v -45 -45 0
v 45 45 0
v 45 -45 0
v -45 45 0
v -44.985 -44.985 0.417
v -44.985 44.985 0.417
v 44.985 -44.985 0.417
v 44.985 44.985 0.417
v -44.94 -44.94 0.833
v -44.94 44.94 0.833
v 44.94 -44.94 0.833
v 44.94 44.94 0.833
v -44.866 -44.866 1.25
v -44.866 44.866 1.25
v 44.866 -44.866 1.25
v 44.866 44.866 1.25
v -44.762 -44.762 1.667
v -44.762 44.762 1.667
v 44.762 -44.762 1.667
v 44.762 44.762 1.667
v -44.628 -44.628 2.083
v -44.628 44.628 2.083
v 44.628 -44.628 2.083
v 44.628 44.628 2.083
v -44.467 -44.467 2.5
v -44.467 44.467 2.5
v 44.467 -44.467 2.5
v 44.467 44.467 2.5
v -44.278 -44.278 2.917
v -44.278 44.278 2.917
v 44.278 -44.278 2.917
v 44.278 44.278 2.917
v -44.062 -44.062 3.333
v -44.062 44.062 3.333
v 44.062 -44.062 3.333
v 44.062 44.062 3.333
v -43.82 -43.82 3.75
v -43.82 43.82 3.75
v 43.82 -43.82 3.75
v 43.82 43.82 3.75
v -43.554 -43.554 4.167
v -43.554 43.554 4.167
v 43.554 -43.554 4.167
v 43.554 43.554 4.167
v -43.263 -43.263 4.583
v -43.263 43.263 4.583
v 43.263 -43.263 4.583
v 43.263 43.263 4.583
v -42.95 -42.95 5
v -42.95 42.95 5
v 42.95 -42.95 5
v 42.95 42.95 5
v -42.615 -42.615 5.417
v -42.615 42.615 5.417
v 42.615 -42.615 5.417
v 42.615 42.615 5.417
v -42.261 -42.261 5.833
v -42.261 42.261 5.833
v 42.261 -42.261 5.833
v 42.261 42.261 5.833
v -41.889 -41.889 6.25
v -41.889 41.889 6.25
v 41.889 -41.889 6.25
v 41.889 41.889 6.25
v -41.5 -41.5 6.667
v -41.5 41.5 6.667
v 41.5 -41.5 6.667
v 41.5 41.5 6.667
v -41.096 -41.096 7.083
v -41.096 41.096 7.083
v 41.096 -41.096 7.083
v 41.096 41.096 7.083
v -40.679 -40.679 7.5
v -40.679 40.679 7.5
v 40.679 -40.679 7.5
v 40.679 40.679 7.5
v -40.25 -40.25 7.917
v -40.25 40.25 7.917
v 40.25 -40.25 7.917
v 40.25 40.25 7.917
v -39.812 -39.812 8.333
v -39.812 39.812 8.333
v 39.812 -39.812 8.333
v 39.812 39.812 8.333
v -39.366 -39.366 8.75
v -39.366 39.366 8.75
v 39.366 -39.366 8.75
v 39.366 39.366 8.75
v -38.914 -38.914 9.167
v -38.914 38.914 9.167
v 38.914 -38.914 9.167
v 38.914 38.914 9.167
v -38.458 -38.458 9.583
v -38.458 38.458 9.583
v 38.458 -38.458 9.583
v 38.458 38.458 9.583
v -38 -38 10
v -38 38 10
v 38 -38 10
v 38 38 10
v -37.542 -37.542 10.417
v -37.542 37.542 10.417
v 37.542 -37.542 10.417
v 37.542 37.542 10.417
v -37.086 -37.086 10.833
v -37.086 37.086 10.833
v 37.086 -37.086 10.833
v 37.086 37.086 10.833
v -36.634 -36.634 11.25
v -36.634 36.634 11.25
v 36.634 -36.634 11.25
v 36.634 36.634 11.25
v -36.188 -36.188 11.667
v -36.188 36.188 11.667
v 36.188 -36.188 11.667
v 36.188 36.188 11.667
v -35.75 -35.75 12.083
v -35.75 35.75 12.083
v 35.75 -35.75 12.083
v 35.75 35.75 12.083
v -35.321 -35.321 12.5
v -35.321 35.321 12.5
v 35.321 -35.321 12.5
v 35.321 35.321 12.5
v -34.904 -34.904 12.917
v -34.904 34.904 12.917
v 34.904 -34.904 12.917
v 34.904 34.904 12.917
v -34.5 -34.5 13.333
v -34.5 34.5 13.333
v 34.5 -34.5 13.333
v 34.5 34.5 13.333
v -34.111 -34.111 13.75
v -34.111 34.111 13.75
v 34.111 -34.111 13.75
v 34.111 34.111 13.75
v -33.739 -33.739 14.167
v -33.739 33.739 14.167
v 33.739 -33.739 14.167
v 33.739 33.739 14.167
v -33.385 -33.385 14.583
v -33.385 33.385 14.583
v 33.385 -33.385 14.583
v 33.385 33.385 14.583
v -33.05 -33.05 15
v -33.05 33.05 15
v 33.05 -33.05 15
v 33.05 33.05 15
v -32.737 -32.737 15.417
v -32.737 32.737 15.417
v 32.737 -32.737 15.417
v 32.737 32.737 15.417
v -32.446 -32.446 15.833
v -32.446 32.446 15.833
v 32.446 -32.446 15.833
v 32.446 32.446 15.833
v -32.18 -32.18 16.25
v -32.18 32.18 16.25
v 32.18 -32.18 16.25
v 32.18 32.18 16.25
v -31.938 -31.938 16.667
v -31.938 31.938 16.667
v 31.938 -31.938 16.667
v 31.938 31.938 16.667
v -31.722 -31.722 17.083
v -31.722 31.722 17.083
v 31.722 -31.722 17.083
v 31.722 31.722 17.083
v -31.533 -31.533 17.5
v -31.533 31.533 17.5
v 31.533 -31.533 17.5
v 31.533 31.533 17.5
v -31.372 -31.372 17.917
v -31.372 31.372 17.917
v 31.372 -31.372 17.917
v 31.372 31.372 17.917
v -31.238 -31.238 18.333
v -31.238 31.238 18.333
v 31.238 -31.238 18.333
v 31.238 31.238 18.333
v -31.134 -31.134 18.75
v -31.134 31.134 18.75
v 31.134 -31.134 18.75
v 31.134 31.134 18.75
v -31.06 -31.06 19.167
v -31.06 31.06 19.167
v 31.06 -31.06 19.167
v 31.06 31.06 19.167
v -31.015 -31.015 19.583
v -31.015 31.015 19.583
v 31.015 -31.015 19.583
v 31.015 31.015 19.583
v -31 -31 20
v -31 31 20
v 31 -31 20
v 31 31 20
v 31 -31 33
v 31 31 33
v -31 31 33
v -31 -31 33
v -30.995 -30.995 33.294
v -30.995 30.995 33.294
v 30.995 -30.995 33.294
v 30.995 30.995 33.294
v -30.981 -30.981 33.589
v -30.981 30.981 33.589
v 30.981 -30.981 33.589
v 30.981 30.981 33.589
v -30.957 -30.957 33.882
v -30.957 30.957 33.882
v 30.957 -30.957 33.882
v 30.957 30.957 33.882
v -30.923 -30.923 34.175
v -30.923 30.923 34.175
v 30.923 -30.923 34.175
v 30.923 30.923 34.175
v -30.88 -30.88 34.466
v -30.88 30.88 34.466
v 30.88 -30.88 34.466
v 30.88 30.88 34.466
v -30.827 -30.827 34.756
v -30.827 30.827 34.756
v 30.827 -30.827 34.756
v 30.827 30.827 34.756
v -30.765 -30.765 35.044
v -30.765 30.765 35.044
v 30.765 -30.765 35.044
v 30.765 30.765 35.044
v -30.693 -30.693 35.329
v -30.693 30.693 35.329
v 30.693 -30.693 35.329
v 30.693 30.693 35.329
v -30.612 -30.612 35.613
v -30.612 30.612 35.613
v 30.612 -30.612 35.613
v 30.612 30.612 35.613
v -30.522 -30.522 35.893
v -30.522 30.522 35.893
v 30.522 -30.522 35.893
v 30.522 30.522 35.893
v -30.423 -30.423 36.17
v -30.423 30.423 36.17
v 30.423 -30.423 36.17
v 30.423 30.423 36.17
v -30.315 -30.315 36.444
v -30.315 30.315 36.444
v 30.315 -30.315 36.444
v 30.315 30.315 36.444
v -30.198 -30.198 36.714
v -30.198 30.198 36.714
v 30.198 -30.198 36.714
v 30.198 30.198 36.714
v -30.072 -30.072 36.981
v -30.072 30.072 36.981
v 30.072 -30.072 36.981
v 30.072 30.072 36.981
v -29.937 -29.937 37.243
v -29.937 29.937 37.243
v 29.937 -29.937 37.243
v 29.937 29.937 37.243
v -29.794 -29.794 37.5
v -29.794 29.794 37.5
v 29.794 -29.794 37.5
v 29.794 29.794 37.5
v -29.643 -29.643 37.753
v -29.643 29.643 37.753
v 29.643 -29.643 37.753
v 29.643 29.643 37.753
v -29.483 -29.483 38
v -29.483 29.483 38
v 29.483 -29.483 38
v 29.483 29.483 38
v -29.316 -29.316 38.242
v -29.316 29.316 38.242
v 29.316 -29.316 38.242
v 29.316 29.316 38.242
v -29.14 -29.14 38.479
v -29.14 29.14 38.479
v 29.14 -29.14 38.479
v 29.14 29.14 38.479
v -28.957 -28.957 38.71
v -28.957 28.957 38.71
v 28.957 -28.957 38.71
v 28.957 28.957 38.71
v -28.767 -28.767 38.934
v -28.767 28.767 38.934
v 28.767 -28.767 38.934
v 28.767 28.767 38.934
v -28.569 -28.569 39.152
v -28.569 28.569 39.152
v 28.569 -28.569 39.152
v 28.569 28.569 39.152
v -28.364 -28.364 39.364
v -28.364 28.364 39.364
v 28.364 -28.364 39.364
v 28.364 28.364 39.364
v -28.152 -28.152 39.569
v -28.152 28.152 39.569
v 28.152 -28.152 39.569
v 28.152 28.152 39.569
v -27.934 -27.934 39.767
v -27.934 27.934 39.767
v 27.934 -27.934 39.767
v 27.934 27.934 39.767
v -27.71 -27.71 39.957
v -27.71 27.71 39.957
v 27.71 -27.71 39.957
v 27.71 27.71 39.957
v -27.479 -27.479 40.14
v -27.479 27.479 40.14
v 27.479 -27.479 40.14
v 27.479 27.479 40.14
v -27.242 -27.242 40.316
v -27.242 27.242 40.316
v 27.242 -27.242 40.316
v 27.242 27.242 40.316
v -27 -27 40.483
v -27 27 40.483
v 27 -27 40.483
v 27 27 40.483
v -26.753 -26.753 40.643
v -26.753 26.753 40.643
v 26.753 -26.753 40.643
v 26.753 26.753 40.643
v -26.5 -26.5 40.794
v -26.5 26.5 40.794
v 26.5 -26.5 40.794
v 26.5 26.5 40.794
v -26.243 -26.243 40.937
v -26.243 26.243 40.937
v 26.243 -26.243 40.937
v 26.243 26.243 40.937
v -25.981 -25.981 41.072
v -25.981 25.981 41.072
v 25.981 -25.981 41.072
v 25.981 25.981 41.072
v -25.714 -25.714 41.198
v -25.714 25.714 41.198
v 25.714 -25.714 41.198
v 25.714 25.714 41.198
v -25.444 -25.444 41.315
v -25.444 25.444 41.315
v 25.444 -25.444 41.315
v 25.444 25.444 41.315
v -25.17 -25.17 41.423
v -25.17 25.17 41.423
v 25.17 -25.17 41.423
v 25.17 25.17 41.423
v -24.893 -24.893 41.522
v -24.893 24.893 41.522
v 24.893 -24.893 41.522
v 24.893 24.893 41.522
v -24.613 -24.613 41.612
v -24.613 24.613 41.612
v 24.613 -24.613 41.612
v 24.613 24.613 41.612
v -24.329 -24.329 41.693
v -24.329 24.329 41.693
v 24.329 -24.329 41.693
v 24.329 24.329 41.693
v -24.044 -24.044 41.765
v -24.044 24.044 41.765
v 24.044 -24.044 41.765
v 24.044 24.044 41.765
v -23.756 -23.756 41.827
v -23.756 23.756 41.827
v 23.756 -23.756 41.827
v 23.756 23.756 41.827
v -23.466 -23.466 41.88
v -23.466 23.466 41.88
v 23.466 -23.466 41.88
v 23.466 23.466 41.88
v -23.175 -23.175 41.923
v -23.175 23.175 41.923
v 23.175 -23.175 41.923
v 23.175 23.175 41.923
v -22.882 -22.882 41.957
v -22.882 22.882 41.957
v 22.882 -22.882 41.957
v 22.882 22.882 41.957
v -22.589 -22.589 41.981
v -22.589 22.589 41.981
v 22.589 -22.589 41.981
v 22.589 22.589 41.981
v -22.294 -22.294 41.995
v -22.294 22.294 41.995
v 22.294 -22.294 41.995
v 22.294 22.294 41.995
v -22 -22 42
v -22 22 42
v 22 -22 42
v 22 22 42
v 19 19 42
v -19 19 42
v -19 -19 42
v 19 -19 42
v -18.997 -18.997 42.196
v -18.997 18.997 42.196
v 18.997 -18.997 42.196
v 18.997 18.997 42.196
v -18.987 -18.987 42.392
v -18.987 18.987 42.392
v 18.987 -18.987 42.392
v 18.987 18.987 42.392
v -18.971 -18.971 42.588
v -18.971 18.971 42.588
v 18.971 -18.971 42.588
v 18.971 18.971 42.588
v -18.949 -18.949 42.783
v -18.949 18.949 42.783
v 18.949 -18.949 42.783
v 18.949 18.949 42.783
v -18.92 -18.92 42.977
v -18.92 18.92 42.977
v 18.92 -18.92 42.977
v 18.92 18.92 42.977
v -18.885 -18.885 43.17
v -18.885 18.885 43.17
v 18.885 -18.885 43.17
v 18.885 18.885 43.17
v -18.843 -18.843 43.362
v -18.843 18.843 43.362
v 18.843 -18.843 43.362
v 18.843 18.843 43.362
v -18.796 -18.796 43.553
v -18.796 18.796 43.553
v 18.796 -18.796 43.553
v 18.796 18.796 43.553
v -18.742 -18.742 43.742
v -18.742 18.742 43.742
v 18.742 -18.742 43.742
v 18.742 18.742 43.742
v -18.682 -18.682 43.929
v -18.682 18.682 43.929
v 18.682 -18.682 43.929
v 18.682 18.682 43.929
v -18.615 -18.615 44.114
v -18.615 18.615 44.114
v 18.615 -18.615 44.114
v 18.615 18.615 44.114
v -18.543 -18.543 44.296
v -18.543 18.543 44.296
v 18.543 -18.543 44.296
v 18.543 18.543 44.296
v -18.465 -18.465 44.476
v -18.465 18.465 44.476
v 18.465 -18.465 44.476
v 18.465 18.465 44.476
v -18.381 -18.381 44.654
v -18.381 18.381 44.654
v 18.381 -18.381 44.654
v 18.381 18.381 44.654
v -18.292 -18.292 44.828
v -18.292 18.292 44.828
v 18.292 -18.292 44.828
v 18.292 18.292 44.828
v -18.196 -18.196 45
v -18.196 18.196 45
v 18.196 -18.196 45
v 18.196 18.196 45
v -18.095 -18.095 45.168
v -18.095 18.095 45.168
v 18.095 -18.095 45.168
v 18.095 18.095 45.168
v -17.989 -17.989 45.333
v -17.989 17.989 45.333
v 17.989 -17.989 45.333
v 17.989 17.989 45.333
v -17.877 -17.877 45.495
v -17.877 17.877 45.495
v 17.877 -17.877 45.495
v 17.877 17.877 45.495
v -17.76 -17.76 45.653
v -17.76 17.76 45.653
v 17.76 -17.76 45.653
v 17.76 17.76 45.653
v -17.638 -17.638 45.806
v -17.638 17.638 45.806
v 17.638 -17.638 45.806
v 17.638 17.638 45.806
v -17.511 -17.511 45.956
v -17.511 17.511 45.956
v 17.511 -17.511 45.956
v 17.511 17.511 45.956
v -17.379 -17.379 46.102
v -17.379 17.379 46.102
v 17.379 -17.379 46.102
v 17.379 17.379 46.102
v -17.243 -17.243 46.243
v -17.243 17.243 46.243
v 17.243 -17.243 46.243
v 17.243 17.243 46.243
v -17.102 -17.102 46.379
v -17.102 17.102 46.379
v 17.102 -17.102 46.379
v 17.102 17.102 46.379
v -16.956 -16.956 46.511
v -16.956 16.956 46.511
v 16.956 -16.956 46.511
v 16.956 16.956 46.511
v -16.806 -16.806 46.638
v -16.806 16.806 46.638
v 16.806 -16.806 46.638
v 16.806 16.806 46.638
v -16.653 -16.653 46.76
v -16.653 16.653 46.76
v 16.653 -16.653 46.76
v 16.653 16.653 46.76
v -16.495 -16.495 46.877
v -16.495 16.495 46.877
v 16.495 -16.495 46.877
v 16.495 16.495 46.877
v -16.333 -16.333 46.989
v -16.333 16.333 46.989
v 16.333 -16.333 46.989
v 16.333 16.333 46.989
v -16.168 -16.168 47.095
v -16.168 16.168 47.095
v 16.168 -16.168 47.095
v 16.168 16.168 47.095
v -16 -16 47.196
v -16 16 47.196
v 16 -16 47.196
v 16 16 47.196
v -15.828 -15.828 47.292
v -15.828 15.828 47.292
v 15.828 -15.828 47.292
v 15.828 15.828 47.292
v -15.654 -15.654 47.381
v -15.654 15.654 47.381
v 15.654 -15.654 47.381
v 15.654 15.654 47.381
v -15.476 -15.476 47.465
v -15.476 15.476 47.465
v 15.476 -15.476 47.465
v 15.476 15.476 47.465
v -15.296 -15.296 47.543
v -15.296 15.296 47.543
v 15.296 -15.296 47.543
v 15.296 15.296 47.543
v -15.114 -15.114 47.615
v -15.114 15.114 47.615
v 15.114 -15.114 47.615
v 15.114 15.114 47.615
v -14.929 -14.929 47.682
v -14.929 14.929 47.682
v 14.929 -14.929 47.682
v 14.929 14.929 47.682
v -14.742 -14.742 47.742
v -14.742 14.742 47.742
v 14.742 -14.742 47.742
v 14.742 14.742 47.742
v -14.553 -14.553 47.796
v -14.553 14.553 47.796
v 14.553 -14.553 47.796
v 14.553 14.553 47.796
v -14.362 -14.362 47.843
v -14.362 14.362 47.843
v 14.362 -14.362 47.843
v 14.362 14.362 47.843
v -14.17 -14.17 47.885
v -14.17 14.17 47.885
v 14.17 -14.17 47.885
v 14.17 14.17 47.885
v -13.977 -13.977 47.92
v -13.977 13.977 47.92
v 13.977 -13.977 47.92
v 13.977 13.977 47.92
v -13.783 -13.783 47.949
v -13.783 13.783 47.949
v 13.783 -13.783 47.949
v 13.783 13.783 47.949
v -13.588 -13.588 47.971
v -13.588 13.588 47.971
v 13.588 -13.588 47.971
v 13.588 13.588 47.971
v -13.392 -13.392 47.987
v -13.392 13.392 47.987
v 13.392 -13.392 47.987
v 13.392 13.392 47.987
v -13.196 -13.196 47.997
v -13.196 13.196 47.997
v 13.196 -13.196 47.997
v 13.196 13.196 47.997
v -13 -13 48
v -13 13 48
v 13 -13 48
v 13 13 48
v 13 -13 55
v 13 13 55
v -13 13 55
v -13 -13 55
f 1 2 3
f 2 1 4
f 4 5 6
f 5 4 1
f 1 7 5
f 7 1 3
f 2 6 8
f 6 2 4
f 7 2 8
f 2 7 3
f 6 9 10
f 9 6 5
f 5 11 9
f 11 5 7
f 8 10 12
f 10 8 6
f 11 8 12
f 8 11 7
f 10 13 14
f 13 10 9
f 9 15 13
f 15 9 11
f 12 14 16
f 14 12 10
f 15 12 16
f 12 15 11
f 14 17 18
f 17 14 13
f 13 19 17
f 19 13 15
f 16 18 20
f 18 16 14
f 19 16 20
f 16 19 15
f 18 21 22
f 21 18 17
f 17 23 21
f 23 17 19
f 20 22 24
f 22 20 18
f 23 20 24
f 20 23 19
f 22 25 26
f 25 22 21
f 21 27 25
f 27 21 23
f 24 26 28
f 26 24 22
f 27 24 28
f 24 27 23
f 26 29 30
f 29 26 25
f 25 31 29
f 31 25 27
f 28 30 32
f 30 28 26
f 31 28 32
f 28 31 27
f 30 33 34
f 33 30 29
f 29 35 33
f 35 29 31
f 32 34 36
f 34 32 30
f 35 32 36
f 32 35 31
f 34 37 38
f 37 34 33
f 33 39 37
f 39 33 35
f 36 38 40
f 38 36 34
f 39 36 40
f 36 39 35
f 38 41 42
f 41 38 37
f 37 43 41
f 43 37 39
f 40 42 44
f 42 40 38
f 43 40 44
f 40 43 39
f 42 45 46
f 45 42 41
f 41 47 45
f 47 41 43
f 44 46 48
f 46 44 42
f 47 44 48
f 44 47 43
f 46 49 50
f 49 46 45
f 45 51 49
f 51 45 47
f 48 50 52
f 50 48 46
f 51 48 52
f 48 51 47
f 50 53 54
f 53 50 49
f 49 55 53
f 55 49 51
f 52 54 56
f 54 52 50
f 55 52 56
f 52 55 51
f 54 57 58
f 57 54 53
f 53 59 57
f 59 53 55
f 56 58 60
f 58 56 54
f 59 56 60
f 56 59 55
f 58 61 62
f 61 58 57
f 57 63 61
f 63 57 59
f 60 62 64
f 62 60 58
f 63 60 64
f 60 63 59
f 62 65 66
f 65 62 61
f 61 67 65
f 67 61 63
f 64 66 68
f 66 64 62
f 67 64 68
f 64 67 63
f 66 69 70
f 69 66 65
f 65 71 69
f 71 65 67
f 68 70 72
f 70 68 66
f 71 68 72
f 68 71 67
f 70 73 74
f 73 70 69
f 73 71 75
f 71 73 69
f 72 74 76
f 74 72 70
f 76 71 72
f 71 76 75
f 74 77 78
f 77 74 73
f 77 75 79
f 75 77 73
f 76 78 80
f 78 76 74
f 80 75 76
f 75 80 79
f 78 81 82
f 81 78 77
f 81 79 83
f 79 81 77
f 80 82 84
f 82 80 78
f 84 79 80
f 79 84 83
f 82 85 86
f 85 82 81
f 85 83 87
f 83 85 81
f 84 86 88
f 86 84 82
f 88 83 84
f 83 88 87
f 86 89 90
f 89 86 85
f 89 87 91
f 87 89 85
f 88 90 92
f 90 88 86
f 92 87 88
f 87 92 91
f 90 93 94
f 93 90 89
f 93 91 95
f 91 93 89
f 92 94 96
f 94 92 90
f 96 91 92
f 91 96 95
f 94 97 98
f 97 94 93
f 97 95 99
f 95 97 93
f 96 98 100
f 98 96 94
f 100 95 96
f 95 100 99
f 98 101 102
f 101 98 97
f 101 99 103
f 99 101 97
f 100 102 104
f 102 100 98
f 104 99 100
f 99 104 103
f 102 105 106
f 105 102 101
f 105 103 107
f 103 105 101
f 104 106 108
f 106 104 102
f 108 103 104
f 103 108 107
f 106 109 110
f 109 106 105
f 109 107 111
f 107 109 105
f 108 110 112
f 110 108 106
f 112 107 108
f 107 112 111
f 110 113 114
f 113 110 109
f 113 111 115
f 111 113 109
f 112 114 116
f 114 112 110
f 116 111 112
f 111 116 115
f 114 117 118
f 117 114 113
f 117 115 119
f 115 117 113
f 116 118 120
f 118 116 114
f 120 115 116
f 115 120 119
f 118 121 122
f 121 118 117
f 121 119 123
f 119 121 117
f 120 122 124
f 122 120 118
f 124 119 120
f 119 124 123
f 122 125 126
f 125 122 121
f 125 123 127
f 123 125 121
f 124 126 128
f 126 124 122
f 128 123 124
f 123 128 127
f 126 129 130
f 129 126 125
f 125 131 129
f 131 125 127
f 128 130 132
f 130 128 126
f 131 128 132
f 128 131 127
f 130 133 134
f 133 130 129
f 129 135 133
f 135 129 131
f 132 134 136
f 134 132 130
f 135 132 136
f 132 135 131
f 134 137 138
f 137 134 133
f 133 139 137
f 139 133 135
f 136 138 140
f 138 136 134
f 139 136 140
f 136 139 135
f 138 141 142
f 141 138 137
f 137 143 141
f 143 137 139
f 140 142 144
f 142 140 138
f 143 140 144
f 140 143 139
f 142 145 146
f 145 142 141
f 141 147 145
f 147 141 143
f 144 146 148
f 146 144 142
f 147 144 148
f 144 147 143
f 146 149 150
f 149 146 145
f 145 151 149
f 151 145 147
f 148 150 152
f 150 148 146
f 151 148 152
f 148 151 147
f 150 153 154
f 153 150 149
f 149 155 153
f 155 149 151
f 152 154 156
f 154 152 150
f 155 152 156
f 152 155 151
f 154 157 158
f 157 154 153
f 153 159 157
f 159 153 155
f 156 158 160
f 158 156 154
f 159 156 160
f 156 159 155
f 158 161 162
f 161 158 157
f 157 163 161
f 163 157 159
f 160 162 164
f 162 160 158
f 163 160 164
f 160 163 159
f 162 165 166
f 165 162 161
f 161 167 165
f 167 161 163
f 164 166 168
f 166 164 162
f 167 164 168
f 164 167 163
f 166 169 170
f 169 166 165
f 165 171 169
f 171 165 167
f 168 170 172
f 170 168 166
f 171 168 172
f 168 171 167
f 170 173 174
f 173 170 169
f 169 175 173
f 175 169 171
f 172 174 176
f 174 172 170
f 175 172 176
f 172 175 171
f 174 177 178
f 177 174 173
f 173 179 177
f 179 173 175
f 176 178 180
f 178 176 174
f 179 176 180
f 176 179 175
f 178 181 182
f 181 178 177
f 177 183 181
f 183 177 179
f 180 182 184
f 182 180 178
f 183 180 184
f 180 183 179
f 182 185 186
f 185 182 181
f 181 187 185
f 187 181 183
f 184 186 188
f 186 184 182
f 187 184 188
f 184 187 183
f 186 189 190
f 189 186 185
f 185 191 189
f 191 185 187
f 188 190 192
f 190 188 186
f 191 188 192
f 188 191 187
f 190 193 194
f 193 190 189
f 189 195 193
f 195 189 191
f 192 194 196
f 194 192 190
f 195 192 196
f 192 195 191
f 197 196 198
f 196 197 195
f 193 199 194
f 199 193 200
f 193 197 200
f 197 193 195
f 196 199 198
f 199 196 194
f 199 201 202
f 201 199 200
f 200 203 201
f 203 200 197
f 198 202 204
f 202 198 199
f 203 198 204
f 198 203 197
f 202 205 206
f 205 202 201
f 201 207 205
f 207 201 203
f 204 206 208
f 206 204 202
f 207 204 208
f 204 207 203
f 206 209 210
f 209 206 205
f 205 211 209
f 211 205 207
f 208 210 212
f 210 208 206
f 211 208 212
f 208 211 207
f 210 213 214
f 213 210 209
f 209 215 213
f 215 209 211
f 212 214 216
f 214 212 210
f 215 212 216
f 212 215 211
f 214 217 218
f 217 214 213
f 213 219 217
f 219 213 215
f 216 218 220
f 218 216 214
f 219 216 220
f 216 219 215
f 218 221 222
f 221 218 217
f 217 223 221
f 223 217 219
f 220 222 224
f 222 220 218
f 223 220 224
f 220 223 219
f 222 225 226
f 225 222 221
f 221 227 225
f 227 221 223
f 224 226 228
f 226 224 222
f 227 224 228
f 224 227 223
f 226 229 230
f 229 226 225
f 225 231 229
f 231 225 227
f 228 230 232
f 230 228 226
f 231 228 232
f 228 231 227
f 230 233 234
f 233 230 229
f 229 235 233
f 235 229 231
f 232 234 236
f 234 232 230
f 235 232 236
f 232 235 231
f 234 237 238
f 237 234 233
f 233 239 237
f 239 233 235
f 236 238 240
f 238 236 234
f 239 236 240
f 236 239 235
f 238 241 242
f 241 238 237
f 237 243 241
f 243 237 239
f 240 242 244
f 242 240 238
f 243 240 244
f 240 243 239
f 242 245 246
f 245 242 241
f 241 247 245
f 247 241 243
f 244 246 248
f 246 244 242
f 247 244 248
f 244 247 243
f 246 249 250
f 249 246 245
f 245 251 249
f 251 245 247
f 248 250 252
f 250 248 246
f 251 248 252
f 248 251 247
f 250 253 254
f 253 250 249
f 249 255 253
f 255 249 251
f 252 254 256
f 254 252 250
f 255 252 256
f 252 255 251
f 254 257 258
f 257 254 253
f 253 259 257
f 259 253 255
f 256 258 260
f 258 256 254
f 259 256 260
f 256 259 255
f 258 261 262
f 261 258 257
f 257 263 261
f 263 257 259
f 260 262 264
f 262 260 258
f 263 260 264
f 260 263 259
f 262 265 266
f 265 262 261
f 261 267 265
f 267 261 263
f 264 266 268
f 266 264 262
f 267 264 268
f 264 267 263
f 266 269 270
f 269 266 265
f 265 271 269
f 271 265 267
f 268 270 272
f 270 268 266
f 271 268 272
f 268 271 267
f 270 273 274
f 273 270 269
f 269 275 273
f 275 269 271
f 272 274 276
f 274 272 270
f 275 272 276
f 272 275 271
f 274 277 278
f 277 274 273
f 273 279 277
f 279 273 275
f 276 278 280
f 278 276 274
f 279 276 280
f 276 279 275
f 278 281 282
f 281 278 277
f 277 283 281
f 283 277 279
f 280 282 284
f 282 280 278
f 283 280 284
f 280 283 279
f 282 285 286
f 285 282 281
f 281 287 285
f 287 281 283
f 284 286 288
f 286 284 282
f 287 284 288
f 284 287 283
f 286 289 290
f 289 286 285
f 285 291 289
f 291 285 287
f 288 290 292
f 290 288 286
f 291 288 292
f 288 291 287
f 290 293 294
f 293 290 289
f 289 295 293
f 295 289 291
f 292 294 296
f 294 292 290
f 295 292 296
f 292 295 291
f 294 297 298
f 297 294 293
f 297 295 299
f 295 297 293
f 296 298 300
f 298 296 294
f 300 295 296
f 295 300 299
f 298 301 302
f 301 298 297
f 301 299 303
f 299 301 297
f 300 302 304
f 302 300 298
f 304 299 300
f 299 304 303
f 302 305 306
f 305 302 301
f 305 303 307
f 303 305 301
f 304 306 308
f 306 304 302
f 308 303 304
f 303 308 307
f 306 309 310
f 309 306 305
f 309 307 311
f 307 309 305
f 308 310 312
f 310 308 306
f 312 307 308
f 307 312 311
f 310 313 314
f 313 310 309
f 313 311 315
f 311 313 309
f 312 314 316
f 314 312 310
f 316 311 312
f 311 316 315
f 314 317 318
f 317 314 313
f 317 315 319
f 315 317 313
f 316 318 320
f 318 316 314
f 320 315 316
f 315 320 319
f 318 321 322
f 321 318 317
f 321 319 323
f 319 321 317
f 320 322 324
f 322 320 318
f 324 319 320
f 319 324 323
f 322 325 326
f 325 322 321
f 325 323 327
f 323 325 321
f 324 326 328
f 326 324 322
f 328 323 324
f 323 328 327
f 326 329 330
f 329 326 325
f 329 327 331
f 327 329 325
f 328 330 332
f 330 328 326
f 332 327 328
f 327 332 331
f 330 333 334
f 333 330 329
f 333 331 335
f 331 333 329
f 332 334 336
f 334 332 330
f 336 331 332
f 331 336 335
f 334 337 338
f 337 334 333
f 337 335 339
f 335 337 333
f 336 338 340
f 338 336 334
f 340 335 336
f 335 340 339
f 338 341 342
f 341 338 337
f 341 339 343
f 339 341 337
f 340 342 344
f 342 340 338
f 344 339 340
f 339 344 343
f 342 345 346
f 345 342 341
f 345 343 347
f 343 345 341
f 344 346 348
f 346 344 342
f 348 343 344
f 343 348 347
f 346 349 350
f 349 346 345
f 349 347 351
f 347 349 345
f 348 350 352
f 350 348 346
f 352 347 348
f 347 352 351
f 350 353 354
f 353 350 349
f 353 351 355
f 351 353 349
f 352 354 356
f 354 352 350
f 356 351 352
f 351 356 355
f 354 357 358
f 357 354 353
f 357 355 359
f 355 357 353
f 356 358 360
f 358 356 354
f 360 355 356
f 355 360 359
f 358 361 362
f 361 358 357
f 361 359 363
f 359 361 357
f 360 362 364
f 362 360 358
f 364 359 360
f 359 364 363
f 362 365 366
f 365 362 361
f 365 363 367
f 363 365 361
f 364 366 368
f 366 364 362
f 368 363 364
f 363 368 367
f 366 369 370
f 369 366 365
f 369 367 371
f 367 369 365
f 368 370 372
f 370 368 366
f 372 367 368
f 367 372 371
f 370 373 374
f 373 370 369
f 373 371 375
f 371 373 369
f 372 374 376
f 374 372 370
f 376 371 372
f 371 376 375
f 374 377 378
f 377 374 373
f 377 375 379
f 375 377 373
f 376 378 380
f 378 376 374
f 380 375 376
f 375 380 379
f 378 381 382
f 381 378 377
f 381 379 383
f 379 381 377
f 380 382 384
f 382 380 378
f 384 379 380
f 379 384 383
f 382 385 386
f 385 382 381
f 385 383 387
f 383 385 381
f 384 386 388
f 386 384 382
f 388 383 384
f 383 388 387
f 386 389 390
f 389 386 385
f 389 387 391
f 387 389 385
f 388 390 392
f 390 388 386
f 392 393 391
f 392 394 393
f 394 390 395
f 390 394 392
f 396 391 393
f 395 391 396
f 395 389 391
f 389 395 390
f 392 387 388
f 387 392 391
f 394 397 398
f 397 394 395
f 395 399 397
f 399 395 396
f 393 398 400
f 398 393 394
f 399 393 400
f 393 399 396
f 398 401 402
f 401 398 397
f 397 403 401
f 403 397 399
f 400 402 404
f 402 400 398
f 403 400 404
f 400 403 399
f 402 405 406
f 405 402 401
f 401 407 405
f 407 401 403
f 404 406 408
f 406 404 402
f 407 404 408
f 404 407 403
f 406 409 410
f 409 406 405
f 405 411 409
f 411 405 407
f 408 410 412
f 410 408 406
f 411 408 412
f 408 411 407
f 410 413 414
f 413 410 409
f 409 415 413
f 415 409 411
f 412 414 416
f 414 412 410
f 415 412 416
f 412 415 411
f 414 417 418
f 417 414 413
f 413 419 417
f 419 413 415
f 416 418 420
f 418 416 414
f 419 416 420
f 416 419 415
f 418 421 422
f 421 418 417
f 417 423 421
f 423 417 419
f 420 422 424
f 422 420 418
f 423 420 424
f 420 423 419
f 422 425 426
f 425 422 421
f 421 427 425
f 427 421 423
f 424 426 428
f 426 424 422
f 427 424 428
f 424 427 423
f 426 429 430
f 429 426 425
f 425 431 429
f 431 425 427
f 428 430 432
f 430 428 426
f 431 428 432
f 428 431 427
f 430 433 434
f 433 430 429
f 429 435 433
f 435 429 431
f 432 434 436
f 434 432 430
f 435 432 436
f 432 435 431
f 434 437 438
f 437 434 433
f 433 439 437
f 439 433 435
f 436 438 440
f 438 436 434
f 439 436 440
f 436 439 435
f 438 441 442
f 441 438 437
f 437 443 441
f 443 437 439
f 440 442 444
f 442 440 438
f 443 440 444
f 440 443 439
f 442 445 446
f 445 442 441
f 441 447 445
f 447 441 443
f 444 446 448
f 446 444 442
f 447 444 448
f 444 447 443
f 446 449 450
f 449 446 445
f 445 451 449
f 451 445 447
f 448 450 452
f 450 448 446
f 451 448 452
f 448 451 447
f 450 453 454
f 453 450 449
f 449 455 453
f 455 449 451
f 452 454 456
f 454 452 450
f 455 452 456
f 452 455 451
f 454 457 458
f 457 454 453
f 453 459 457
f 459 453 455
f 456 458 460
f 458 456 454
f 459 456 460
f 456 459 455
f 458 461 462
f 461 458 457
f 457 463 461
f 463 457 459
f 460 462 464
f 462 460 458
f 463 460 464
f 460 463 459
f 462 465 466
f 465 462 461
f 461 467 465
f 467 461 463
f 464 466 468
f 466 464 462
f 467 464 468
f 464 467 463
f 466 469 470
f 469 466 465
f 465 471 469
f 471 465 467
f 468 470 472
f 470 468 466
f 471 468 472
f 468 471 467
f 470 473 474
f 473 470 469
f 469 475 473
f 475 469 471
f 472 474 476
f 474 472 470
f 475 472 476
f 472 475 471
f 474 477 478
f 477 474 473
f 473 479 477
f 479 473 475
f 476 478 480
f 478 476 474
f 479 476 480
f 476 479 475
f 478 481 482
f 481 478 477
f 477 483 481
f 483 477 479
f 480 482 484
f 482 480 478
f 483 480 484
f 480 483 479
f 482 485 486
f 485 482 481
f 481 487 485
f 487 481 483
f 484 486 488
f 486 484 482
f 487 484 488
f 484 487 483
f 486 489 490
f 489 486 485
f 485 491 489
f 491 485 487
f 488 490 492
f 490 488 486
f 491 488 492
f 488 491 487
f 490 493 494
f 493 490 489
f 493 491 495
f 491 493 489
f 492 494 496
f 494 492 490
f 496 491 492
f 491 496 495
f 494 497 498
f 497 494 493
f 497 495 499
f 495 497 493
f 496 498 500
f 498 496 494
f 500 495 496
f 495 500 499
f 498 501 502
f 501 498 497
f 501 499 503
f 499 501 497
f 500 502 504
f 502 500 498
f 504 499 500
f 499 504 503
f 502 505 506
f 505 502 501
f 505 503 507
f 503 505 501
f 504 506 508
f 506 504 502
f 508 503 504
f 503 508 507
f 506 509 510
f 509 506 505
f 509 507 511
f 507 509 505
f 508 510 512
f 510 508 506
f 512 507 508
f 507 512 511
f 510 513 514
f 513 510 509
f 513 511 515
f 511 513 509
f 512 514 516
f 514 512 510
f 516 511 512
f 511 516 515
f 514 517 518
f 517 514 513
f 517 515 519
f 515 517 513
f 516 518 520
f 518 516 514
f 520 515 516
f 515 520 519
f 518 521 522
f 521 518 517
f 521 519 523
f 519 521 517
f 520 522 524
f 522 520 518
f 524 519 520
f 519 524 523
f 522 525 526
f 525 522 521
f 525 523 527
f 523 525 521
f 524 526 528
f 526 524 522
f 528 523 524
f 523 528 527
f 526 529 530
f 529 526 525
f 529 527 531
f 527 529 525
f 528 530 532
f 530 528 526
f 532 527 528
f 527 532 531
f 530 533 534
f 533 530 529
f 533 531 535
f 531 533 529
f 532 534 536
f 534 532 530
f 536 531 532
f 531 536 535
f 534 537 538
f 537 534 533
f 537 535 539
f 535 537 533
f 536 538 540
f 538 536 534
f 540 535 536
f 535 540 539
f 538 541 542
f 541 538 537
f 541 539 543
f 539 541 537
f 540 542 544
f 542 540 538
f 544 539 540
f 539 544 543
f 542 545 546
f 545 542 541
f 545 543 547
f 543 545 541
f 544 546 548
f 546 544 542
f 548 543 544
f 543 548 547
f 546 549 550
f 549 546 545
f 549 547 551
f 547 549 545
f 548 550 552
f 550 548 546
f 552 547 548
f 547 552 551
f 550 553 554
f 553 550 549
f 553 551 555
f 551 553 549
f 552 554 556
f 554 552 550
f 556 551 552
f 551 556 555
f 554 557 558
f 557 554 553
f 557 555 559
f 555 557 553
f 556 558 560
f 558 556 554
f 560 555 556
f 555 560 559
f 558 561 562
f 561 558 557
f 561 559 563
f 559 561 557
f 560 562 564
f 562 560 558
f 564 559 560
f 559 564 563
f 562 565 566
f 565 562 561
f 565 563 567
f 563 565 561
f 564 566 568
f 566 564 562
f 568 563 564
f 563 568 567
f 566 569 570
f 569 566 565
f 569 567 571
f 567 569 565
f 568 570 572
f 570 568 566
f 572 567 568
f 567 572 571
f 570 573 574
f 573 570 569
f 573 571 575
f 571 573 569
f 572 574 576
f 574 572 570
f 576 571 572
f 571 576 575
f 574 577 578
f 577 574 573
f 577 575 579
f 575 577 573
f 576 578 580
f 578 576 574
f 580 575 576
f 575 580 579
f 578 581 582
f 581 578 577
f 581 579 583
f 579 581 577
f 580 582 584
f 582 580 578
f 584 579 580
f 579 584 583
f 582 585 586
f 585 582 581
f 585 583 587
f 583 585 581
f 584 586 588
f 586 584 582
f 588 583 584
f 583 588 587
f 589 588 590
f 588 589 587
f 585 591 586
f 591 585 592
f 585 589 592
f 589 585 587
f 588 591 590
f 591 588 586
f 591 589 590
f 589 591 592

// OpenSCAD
// trophy_base_ogee.scad
// Square trophy base with an ogee side profile. Bottom-up the side reads:
// ogee S-curve (convex then concave) -> straight riser -> convex top
// molding -> straight inward ledge -> smaller convex molding -> flat
// platform. Square footprint, symmetrical about both XY axes.
// FDM-friendly: largest flat face on the build plate, profile narrows
// monotonically with height so there are no overhangs.

$fn = 100;

// 1. Constants & parameters
base_width   = 90;  // mm, square side at the bottom
total_height = 55;  // mm

ogee_h       = 20;  // mm, height of the bottom S-curve
ogee_inset   = 14;  // mm each side pulls in across the ogee

riser_h      = 13;  // mm, straight vertical shaft above the ogee

top1_h       = 9;   // mm, first (larger) convex top molding height
top1_inset   = 9;   // mm each side pulls in across that molding

ledge_inset  = 3;   // mm straight horizontal step inward (the shelf)

top2_h       = 6;   // mm, second (smaller) convex molding height
top2_inset   = 6;   // mm each side pulls in across that molding
// remaining height -> flat top platform

arc_steps    = 48;  // segments generated per curved profile section

// 2. Derived dimensions
hw0 = base_width / 2;          // half-width at the base
hw1 = hw0 - ogee_inset;        // half-width of the riser
hw2 = hw1 - top1_inset;        // half-width after the first molding
hw3 = hw2 - ledge_inset;       // half-width after the ledge
hw4 = hw3 - top2_inset;        // half-width of the platform

z_riser   = ogee_h;                       // ogee ends / riser begins
z_top1    = z_riser + riser_h;            // riser ends / molding 1 begins
z_ledge   = z_top1 + top1_h;              // molding 1 ends / ledge + molding 2
z_top2    = z_ledge + top2_h;             // molding 2 ends / platform begins
platform_h = total_height - z_top2;

assert(hw4 > 0,         "insets too large: platform half-width <= 0");
assert(platform_h > 0,  "height too small: no room for the platform");

// 3. Profile (list of [half-width, z], bottom -> top)
//    Ogee: full-period cosine S — convex lower half, concave upper half,
//    vertical tangents at both ends (blends into the flat base and riser).
ogee_pts = [ for (i = [0 : arc_steps])
    let (t = i / arc_steps)
    [ hw1 + ogee_inset * (1 + cos(180 * t)) / 2, ogee_h * t ] ];

//    Convex molding 1: vertical tangent at the riser, horizontal at ledge.
top1_pts = [ for (i = [1 : arc_steps])
    let (a = 90 * i / arc_steps)
    [ hw1 - top1_inset * (1 - cos(a)), z_top1 + top1_h * sin(a) ] ];

//    Convex molding 2: horizontal tangent at the ledge, vertical at platform.
top2_pts = [ for (i = [1 : arc_steps])
    let (a = 90 * i / arc_steps)
    [ hw3 - top2_inset * (1 - cos(a)), z_ledge + top2_h * sin(a) ] ];

profile = concat(
    ogee_pts,                       // base S-curve, ends at [hw1, z_riser]
    [ [hw1, z_top1] ],              // straight riser
    top1_pts,                       // first convex molding, ends [hw2, z_ledge]
    [ [hw3, z_ledge] ],             // straight inward ledge (horizontal step)
    top2_pts,                       // second convex molding, ends [hw4, z_top2]
    [ [hw4, total_height] ]         // flat platform
);

// 4. Component module
//    Each profile pair extrudes a centered square frustum; stacking the
//    frustums sweeps the profile around the square footprint. Horizontal
//    pairs (the ledge) are skipped — their inward step forms the shelf.
module trophy_base_ogee() {
    for (i = [0 : len(profile) - 2])
        if (profile[i + 1].y > profile[i].y)
            translate([0, 0, profile[i].y])
                linear_extrude(height = profile[i + 1].y - profile[i].y,
                               scale  = profile[i + 1].x / profile[i].x)
                    square(2 * profile[i].x, center = true);
}

// 5. Assembly
trophy_base_ogee();
